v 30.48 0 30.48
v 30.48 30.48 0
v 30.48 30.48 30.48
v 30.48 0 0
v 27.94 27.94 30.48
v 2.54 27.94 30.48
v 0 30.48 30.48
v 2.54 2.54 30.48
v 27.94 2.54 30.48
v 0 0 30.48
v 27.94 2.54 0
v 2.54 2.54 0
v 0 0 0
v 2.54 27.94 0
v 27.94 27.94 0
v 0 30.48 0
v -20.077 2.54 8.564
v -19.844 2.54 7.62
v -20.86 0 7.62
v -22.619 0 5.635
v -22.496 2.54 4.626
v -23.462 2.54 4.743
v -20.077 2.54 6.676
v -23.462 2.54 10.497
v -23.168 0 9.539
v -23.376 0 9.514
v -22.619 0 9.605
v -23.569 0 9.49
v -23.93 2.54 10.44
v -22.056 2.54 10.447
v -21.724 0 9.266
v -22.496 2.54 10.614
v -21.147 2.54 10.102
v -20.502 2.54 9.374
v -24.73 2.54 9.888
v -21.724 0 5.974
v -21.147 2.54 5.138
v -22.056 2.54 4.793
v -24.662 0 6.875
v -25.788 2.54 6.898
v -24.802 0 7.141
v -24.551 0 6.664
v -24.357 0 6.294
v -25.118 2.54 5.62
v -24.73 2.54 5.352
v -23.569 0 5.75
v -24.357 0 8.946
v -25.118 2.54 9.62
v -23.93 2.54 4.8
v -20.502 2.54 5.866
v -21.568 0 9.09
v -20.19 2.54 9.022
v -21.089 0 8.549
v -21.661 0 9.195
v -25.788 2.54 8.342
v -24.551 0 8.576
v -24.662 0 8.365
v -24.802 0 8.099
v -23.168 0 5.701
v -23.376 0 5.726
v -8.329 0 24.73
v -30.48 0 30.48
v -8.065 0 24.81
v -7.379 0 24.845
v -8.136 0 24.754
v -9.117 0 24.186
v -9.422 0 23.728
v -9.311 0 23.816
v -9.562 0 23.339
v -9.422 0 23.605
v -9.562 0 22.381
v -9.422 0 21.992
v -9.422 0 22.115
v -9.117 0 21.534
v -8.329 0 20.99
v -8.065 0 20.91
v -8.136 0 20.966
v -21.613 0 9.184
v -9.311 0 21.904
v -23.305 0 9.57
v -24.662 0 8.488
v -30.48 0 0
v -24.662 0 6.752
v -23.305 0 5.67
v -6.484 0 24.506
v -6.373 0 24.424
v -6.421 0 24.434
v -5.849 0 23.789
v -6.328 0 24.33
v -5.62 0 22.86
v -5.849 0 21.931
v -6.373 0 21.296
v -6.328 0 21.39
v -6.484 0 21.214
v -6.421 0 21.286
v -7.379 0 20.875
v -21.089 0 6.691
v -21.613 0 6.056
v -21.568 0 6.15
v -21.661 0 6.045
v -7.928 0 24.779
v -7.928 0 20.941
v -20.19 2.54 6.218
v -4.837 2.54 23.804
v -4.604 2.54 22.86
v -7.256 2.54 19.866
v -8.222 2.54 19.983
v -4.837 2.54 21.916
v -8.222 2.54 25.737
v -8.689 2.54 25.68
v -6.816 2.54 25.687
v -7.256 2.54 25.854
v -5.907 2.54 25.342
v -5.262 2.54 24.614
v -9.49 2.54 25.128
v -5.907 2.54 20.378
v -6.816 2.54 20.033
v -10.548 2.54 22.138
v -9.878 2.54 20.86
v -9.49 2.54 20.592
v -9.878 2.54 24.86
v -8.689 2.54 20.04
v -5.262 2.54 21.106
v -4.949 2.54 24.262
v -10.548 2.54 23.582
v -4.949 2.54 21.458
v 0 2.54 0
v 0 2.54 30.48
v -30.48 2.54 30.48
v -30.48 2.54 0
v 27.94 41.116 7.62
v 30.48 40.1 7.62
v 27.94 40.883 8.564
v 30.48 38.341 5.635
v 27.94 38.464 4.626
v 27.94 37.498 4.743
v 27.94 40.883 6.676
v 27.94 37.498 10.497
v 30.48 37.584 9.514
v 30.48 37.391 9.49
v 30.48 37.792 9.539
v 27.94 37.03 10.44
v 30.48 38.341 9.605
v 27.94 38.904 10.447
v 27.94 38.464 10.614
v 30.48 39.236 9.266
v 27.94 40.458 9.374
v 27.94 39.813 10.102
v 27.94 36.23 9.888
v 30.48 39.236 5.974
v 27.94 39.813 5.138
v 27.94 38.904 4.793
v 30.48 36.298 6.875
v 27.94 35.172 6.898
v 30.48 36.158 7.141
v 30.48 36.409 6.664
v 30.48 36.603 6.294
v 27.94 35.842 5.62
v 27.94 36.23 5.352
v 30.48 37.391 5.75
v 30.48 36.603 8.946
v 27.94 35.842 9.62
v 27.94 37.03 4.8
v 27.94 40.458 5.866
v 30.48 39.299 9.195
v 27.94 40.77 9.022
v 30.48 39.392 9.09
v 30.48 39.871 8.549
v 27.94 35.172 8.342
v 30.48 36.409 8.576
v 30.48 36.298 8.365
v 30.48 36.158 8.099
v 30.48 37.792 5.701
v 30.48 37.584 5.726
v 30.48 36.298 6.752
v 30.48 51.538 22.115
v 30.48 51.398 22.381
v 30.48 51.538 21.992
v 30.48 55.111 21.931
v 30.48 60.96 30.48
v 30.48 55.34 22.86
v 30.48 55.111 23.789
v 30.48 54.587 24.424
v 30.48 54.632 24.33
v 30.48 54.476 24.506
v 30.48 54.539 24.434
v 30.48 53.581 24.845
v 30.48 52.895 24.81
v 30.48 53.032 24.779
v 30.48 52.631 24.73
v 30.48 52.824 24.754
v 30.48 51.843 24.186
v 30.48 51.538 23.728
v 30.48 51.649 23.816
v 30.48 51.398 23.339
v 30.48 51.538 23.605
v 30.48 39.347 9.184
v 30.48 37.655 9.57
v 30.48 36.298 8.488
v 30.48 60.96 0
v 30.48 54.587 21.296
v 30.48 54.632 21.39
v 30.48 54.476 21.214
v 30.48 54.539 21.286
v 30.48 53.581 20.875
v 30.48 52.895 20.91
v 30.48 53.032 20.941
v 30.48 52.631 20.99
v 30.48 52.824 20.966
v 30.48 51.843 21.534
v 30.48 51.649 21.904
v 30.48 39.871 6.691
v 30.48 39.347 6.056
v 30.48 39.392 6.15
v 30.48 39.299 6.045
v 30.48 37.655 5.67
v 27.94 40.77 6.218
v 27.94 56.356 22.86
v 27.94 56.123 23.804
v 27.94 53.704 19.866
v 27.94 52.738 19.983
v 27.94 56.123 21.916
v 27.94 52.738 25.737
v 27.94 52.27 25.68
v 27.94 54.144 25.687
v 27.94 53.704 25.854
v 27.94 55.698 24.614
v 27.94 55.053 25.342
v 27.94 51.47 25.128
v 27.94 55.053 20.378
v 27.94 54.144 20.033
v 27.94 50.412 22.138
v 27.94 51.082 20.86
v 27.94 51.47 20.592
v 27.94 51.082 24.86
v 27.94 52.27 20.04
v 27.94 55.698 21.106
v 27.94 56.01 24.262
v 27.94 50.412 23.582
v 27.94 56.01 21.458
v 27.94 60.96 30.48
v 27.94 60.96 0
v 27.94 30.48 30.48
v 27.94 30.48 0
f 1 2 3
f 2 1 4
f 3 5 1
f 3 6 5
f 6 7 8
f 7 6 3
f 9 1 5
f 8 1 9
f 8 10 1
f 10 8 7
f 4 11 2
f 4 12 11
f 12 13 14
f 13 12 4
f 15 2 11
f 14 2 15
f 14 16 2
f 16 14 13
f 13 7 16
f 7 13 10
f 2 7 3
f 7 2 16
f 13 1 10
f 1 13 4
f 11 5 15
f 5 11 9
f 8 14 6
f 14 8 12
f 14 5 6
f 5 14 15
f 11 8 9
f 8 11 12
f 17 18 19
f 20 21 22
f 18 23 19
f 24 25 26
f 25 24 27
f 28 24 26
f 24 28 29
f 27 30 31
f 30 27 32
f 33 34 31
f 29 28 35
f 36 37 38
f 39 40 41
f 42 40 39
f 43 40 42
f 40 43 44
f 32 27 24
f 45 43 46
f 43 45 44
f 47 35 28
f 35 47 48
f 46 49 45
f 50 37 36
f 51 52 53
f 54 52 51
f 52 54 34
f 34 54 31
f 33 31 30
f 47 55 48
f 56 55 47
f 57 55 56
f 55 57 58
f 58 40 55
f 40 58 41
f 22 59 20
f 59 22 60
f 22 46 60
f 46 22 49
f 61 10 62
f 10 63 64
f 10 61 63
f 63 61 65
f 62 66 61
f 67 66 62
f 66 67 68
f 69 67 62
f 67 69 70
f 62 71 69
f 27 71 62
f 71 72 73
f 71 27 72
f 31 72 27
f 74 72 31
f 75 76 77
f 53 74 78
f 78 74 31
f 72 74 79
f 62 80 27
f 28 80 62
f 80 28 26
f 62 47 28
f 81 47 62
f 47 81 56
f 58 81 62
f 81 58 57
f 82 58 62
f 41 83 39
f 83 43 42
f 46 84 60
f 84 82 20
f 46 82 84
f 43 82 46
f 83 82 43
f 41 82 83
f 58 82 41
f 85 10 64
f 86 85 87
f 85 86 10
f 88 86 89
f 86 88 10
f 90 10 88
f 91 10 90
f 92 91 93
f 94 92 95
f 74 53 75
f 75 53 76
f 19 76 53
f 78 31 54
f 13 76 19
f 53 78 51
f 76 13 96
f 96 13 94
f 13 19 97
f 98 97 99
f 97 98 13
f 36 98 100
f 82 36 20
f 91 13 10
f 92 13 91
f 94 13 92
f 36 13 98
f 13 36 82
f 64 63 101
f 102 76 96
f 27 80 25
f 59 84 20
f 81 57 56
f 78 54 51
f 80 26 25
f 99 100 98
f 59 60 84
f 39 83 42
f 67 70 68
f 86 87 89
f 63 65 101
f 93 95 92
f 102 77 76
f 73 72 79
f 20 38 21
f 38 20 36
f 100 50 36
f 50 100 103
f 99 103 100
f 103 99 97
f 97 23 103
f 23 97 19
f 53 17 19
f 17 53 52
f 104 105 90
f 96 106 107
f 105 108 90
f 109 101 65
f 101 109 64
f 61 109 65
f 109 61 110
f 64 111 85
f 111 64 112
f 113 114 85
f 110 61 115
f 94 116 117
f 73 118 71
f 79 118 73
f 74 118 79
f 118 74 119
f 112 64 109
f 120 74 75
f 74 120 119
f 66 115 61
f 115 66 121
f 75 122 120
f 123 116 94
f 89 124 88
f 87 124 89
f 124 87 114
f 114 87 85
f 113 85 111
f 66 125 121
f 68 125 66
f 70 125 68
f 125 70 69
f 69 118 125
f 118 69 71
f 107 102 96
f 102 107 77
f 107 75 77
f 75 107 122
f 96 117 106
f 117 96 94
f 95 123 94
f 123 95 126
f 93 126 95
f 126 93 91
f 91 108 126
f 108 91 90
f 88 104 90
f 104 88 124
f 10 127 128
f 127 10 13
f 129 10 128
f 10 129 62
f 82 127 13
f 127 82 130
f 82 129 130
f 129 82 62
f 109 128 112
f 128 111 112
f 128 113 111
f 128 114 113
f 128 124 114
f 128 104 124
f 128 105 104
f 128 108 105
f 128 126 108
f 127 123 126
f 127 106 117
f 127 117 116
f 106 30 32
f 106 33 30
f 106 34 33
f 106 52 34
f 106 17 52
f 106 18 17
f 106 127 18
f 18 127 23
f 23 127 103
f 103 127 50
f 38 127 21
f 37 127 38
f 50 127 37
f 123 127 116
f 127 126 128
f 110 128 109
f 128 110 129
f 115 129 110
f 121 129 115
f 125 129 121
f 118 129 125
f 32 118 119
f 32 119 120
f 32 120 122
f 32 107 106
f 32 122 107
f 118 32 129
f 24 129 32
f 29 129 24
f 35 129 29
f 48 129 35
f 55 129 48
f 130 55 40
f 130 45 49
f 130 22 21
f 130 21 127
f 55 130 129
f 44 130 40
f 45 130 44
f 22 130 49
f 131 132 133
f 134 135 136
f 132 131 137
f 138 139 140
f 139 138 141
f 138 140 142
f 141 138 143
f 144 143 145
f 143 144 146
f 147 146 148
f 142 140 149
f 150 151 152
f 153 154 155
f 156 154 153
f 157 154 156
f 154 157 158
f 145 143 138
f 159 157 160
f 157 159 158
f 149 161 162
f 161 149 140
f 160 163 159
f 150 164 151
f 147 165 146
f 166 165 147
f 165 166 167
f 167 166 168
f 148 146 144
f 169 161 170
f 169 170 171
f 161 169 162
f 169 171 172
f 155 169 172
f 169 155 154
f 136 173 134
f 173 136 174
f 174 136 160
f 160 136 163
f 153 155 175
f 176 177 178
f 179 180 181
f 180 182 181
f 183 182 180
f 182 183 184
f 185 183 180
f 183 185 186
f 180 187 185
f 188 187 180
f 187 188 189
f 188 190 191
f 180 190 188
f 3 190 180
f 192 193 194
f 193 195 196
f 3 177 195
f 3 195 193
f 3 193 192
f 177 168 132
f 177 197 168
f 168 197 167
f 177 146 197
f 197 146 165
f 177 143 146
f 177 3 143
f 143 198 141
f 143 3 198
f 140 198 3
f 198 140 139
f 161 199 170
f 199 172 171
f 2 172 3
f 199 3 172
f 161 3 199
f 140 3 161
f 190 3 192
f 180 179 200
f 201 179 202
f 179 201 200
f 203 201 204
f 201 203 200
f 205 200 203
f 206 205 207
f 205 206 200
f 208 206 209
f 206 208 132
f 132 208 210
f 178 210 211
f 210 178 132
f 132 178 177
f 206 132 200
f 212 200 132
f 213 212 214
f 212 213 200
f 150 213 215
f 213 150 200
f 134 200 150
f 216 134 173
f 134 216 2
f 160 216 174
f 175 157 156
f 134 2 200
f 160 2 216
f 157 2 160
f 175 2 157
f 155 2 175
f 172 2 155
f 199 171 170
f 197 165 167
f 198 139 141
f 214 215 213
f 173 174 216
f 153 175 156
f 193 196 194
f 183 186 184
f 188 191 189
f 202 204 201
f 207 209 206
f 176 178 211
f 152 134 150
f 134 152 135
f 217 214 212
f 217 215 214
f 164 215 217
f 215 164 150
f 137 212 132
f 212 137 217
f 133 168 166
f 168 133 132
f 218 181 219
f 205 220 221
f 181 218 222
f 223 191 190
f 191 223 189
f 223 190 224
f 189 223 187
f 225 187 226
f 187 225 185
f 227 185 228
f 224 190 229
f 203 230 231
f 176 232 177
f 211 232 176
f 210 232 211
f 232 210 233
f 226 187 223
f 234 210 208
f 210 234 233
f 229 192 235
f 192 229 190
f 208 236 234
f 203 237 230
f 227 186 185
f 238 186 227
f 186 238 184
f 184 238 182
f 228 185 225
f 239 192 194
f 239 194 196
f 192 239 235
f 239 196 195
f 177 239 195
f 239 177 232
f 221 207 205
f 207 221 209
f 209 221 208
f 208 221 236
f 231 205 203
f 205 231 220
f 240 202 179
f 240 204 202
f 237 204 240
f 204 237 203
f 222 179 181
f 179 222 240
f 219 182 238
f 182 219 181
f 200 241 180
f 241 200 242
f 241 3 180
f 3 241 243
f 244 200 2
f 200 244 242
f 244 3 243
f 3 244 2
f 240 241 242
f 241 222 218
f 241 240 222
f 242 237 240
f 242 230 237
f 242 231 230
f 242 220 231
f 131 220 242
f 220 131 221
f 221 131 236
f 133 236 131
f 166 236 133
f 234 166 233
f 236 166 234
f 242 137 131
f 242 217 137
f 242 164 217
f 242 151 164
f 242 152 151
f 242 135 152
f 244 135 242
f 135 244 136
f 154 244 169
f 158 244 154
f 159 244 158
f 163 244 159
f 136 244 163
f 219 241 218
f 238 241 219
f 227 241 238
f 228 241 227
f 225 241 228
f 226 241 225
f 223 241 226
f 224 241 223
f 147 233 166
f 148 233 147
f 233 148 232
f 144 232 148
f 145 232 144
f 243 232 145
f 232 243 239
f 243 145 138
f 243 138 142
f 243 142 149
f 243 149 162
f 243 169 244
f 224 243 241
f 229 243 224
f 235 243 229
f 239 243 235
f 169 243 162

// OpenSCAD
rod = 25.4;

//screw
screw1 = 8; //width of the screw head
screw2 = 4; //width of the screw body
screwhead = 5; //height of the screw head
screwlength = 10; //length of the screw body

module screw() {
    color( [0, 0, 1] ) {
        cylinder( d1 = screw1, d2 = screw2, h = screwhead);
        translate([0, 0, screwhead]) cylinder( d=screw2, h = screwlength);
    }
}

module platform() {
    difference() {
        cube( [1.2*rod, 0.1*rod, 1.2*rod] );
    
        translate([ 0.3*rod, screwhead, 0.3*rod])
            rotate([ 90, 0, 0] )
                screw();
        
        translate([ 0.9*rod, screwhead, 0.9*rod])
            rotate([ 90, 0, 0] )
                screw();
    }

}

module center_mount() {
    difference() {
        cube ( [1.2*rod, 1.2*rod, 1.2*rod] );
        translate([0.1*rod, 0.1*rod, -1])
            cube ( [ rod, rod, 2*rod] );
    }
}


center_mount();

translate([-1.2*rod, 0, 0])
    platform();
translate([1.2*rod, 1.2*rod, 0])
    rotate([0, 0, 90]) platform();
